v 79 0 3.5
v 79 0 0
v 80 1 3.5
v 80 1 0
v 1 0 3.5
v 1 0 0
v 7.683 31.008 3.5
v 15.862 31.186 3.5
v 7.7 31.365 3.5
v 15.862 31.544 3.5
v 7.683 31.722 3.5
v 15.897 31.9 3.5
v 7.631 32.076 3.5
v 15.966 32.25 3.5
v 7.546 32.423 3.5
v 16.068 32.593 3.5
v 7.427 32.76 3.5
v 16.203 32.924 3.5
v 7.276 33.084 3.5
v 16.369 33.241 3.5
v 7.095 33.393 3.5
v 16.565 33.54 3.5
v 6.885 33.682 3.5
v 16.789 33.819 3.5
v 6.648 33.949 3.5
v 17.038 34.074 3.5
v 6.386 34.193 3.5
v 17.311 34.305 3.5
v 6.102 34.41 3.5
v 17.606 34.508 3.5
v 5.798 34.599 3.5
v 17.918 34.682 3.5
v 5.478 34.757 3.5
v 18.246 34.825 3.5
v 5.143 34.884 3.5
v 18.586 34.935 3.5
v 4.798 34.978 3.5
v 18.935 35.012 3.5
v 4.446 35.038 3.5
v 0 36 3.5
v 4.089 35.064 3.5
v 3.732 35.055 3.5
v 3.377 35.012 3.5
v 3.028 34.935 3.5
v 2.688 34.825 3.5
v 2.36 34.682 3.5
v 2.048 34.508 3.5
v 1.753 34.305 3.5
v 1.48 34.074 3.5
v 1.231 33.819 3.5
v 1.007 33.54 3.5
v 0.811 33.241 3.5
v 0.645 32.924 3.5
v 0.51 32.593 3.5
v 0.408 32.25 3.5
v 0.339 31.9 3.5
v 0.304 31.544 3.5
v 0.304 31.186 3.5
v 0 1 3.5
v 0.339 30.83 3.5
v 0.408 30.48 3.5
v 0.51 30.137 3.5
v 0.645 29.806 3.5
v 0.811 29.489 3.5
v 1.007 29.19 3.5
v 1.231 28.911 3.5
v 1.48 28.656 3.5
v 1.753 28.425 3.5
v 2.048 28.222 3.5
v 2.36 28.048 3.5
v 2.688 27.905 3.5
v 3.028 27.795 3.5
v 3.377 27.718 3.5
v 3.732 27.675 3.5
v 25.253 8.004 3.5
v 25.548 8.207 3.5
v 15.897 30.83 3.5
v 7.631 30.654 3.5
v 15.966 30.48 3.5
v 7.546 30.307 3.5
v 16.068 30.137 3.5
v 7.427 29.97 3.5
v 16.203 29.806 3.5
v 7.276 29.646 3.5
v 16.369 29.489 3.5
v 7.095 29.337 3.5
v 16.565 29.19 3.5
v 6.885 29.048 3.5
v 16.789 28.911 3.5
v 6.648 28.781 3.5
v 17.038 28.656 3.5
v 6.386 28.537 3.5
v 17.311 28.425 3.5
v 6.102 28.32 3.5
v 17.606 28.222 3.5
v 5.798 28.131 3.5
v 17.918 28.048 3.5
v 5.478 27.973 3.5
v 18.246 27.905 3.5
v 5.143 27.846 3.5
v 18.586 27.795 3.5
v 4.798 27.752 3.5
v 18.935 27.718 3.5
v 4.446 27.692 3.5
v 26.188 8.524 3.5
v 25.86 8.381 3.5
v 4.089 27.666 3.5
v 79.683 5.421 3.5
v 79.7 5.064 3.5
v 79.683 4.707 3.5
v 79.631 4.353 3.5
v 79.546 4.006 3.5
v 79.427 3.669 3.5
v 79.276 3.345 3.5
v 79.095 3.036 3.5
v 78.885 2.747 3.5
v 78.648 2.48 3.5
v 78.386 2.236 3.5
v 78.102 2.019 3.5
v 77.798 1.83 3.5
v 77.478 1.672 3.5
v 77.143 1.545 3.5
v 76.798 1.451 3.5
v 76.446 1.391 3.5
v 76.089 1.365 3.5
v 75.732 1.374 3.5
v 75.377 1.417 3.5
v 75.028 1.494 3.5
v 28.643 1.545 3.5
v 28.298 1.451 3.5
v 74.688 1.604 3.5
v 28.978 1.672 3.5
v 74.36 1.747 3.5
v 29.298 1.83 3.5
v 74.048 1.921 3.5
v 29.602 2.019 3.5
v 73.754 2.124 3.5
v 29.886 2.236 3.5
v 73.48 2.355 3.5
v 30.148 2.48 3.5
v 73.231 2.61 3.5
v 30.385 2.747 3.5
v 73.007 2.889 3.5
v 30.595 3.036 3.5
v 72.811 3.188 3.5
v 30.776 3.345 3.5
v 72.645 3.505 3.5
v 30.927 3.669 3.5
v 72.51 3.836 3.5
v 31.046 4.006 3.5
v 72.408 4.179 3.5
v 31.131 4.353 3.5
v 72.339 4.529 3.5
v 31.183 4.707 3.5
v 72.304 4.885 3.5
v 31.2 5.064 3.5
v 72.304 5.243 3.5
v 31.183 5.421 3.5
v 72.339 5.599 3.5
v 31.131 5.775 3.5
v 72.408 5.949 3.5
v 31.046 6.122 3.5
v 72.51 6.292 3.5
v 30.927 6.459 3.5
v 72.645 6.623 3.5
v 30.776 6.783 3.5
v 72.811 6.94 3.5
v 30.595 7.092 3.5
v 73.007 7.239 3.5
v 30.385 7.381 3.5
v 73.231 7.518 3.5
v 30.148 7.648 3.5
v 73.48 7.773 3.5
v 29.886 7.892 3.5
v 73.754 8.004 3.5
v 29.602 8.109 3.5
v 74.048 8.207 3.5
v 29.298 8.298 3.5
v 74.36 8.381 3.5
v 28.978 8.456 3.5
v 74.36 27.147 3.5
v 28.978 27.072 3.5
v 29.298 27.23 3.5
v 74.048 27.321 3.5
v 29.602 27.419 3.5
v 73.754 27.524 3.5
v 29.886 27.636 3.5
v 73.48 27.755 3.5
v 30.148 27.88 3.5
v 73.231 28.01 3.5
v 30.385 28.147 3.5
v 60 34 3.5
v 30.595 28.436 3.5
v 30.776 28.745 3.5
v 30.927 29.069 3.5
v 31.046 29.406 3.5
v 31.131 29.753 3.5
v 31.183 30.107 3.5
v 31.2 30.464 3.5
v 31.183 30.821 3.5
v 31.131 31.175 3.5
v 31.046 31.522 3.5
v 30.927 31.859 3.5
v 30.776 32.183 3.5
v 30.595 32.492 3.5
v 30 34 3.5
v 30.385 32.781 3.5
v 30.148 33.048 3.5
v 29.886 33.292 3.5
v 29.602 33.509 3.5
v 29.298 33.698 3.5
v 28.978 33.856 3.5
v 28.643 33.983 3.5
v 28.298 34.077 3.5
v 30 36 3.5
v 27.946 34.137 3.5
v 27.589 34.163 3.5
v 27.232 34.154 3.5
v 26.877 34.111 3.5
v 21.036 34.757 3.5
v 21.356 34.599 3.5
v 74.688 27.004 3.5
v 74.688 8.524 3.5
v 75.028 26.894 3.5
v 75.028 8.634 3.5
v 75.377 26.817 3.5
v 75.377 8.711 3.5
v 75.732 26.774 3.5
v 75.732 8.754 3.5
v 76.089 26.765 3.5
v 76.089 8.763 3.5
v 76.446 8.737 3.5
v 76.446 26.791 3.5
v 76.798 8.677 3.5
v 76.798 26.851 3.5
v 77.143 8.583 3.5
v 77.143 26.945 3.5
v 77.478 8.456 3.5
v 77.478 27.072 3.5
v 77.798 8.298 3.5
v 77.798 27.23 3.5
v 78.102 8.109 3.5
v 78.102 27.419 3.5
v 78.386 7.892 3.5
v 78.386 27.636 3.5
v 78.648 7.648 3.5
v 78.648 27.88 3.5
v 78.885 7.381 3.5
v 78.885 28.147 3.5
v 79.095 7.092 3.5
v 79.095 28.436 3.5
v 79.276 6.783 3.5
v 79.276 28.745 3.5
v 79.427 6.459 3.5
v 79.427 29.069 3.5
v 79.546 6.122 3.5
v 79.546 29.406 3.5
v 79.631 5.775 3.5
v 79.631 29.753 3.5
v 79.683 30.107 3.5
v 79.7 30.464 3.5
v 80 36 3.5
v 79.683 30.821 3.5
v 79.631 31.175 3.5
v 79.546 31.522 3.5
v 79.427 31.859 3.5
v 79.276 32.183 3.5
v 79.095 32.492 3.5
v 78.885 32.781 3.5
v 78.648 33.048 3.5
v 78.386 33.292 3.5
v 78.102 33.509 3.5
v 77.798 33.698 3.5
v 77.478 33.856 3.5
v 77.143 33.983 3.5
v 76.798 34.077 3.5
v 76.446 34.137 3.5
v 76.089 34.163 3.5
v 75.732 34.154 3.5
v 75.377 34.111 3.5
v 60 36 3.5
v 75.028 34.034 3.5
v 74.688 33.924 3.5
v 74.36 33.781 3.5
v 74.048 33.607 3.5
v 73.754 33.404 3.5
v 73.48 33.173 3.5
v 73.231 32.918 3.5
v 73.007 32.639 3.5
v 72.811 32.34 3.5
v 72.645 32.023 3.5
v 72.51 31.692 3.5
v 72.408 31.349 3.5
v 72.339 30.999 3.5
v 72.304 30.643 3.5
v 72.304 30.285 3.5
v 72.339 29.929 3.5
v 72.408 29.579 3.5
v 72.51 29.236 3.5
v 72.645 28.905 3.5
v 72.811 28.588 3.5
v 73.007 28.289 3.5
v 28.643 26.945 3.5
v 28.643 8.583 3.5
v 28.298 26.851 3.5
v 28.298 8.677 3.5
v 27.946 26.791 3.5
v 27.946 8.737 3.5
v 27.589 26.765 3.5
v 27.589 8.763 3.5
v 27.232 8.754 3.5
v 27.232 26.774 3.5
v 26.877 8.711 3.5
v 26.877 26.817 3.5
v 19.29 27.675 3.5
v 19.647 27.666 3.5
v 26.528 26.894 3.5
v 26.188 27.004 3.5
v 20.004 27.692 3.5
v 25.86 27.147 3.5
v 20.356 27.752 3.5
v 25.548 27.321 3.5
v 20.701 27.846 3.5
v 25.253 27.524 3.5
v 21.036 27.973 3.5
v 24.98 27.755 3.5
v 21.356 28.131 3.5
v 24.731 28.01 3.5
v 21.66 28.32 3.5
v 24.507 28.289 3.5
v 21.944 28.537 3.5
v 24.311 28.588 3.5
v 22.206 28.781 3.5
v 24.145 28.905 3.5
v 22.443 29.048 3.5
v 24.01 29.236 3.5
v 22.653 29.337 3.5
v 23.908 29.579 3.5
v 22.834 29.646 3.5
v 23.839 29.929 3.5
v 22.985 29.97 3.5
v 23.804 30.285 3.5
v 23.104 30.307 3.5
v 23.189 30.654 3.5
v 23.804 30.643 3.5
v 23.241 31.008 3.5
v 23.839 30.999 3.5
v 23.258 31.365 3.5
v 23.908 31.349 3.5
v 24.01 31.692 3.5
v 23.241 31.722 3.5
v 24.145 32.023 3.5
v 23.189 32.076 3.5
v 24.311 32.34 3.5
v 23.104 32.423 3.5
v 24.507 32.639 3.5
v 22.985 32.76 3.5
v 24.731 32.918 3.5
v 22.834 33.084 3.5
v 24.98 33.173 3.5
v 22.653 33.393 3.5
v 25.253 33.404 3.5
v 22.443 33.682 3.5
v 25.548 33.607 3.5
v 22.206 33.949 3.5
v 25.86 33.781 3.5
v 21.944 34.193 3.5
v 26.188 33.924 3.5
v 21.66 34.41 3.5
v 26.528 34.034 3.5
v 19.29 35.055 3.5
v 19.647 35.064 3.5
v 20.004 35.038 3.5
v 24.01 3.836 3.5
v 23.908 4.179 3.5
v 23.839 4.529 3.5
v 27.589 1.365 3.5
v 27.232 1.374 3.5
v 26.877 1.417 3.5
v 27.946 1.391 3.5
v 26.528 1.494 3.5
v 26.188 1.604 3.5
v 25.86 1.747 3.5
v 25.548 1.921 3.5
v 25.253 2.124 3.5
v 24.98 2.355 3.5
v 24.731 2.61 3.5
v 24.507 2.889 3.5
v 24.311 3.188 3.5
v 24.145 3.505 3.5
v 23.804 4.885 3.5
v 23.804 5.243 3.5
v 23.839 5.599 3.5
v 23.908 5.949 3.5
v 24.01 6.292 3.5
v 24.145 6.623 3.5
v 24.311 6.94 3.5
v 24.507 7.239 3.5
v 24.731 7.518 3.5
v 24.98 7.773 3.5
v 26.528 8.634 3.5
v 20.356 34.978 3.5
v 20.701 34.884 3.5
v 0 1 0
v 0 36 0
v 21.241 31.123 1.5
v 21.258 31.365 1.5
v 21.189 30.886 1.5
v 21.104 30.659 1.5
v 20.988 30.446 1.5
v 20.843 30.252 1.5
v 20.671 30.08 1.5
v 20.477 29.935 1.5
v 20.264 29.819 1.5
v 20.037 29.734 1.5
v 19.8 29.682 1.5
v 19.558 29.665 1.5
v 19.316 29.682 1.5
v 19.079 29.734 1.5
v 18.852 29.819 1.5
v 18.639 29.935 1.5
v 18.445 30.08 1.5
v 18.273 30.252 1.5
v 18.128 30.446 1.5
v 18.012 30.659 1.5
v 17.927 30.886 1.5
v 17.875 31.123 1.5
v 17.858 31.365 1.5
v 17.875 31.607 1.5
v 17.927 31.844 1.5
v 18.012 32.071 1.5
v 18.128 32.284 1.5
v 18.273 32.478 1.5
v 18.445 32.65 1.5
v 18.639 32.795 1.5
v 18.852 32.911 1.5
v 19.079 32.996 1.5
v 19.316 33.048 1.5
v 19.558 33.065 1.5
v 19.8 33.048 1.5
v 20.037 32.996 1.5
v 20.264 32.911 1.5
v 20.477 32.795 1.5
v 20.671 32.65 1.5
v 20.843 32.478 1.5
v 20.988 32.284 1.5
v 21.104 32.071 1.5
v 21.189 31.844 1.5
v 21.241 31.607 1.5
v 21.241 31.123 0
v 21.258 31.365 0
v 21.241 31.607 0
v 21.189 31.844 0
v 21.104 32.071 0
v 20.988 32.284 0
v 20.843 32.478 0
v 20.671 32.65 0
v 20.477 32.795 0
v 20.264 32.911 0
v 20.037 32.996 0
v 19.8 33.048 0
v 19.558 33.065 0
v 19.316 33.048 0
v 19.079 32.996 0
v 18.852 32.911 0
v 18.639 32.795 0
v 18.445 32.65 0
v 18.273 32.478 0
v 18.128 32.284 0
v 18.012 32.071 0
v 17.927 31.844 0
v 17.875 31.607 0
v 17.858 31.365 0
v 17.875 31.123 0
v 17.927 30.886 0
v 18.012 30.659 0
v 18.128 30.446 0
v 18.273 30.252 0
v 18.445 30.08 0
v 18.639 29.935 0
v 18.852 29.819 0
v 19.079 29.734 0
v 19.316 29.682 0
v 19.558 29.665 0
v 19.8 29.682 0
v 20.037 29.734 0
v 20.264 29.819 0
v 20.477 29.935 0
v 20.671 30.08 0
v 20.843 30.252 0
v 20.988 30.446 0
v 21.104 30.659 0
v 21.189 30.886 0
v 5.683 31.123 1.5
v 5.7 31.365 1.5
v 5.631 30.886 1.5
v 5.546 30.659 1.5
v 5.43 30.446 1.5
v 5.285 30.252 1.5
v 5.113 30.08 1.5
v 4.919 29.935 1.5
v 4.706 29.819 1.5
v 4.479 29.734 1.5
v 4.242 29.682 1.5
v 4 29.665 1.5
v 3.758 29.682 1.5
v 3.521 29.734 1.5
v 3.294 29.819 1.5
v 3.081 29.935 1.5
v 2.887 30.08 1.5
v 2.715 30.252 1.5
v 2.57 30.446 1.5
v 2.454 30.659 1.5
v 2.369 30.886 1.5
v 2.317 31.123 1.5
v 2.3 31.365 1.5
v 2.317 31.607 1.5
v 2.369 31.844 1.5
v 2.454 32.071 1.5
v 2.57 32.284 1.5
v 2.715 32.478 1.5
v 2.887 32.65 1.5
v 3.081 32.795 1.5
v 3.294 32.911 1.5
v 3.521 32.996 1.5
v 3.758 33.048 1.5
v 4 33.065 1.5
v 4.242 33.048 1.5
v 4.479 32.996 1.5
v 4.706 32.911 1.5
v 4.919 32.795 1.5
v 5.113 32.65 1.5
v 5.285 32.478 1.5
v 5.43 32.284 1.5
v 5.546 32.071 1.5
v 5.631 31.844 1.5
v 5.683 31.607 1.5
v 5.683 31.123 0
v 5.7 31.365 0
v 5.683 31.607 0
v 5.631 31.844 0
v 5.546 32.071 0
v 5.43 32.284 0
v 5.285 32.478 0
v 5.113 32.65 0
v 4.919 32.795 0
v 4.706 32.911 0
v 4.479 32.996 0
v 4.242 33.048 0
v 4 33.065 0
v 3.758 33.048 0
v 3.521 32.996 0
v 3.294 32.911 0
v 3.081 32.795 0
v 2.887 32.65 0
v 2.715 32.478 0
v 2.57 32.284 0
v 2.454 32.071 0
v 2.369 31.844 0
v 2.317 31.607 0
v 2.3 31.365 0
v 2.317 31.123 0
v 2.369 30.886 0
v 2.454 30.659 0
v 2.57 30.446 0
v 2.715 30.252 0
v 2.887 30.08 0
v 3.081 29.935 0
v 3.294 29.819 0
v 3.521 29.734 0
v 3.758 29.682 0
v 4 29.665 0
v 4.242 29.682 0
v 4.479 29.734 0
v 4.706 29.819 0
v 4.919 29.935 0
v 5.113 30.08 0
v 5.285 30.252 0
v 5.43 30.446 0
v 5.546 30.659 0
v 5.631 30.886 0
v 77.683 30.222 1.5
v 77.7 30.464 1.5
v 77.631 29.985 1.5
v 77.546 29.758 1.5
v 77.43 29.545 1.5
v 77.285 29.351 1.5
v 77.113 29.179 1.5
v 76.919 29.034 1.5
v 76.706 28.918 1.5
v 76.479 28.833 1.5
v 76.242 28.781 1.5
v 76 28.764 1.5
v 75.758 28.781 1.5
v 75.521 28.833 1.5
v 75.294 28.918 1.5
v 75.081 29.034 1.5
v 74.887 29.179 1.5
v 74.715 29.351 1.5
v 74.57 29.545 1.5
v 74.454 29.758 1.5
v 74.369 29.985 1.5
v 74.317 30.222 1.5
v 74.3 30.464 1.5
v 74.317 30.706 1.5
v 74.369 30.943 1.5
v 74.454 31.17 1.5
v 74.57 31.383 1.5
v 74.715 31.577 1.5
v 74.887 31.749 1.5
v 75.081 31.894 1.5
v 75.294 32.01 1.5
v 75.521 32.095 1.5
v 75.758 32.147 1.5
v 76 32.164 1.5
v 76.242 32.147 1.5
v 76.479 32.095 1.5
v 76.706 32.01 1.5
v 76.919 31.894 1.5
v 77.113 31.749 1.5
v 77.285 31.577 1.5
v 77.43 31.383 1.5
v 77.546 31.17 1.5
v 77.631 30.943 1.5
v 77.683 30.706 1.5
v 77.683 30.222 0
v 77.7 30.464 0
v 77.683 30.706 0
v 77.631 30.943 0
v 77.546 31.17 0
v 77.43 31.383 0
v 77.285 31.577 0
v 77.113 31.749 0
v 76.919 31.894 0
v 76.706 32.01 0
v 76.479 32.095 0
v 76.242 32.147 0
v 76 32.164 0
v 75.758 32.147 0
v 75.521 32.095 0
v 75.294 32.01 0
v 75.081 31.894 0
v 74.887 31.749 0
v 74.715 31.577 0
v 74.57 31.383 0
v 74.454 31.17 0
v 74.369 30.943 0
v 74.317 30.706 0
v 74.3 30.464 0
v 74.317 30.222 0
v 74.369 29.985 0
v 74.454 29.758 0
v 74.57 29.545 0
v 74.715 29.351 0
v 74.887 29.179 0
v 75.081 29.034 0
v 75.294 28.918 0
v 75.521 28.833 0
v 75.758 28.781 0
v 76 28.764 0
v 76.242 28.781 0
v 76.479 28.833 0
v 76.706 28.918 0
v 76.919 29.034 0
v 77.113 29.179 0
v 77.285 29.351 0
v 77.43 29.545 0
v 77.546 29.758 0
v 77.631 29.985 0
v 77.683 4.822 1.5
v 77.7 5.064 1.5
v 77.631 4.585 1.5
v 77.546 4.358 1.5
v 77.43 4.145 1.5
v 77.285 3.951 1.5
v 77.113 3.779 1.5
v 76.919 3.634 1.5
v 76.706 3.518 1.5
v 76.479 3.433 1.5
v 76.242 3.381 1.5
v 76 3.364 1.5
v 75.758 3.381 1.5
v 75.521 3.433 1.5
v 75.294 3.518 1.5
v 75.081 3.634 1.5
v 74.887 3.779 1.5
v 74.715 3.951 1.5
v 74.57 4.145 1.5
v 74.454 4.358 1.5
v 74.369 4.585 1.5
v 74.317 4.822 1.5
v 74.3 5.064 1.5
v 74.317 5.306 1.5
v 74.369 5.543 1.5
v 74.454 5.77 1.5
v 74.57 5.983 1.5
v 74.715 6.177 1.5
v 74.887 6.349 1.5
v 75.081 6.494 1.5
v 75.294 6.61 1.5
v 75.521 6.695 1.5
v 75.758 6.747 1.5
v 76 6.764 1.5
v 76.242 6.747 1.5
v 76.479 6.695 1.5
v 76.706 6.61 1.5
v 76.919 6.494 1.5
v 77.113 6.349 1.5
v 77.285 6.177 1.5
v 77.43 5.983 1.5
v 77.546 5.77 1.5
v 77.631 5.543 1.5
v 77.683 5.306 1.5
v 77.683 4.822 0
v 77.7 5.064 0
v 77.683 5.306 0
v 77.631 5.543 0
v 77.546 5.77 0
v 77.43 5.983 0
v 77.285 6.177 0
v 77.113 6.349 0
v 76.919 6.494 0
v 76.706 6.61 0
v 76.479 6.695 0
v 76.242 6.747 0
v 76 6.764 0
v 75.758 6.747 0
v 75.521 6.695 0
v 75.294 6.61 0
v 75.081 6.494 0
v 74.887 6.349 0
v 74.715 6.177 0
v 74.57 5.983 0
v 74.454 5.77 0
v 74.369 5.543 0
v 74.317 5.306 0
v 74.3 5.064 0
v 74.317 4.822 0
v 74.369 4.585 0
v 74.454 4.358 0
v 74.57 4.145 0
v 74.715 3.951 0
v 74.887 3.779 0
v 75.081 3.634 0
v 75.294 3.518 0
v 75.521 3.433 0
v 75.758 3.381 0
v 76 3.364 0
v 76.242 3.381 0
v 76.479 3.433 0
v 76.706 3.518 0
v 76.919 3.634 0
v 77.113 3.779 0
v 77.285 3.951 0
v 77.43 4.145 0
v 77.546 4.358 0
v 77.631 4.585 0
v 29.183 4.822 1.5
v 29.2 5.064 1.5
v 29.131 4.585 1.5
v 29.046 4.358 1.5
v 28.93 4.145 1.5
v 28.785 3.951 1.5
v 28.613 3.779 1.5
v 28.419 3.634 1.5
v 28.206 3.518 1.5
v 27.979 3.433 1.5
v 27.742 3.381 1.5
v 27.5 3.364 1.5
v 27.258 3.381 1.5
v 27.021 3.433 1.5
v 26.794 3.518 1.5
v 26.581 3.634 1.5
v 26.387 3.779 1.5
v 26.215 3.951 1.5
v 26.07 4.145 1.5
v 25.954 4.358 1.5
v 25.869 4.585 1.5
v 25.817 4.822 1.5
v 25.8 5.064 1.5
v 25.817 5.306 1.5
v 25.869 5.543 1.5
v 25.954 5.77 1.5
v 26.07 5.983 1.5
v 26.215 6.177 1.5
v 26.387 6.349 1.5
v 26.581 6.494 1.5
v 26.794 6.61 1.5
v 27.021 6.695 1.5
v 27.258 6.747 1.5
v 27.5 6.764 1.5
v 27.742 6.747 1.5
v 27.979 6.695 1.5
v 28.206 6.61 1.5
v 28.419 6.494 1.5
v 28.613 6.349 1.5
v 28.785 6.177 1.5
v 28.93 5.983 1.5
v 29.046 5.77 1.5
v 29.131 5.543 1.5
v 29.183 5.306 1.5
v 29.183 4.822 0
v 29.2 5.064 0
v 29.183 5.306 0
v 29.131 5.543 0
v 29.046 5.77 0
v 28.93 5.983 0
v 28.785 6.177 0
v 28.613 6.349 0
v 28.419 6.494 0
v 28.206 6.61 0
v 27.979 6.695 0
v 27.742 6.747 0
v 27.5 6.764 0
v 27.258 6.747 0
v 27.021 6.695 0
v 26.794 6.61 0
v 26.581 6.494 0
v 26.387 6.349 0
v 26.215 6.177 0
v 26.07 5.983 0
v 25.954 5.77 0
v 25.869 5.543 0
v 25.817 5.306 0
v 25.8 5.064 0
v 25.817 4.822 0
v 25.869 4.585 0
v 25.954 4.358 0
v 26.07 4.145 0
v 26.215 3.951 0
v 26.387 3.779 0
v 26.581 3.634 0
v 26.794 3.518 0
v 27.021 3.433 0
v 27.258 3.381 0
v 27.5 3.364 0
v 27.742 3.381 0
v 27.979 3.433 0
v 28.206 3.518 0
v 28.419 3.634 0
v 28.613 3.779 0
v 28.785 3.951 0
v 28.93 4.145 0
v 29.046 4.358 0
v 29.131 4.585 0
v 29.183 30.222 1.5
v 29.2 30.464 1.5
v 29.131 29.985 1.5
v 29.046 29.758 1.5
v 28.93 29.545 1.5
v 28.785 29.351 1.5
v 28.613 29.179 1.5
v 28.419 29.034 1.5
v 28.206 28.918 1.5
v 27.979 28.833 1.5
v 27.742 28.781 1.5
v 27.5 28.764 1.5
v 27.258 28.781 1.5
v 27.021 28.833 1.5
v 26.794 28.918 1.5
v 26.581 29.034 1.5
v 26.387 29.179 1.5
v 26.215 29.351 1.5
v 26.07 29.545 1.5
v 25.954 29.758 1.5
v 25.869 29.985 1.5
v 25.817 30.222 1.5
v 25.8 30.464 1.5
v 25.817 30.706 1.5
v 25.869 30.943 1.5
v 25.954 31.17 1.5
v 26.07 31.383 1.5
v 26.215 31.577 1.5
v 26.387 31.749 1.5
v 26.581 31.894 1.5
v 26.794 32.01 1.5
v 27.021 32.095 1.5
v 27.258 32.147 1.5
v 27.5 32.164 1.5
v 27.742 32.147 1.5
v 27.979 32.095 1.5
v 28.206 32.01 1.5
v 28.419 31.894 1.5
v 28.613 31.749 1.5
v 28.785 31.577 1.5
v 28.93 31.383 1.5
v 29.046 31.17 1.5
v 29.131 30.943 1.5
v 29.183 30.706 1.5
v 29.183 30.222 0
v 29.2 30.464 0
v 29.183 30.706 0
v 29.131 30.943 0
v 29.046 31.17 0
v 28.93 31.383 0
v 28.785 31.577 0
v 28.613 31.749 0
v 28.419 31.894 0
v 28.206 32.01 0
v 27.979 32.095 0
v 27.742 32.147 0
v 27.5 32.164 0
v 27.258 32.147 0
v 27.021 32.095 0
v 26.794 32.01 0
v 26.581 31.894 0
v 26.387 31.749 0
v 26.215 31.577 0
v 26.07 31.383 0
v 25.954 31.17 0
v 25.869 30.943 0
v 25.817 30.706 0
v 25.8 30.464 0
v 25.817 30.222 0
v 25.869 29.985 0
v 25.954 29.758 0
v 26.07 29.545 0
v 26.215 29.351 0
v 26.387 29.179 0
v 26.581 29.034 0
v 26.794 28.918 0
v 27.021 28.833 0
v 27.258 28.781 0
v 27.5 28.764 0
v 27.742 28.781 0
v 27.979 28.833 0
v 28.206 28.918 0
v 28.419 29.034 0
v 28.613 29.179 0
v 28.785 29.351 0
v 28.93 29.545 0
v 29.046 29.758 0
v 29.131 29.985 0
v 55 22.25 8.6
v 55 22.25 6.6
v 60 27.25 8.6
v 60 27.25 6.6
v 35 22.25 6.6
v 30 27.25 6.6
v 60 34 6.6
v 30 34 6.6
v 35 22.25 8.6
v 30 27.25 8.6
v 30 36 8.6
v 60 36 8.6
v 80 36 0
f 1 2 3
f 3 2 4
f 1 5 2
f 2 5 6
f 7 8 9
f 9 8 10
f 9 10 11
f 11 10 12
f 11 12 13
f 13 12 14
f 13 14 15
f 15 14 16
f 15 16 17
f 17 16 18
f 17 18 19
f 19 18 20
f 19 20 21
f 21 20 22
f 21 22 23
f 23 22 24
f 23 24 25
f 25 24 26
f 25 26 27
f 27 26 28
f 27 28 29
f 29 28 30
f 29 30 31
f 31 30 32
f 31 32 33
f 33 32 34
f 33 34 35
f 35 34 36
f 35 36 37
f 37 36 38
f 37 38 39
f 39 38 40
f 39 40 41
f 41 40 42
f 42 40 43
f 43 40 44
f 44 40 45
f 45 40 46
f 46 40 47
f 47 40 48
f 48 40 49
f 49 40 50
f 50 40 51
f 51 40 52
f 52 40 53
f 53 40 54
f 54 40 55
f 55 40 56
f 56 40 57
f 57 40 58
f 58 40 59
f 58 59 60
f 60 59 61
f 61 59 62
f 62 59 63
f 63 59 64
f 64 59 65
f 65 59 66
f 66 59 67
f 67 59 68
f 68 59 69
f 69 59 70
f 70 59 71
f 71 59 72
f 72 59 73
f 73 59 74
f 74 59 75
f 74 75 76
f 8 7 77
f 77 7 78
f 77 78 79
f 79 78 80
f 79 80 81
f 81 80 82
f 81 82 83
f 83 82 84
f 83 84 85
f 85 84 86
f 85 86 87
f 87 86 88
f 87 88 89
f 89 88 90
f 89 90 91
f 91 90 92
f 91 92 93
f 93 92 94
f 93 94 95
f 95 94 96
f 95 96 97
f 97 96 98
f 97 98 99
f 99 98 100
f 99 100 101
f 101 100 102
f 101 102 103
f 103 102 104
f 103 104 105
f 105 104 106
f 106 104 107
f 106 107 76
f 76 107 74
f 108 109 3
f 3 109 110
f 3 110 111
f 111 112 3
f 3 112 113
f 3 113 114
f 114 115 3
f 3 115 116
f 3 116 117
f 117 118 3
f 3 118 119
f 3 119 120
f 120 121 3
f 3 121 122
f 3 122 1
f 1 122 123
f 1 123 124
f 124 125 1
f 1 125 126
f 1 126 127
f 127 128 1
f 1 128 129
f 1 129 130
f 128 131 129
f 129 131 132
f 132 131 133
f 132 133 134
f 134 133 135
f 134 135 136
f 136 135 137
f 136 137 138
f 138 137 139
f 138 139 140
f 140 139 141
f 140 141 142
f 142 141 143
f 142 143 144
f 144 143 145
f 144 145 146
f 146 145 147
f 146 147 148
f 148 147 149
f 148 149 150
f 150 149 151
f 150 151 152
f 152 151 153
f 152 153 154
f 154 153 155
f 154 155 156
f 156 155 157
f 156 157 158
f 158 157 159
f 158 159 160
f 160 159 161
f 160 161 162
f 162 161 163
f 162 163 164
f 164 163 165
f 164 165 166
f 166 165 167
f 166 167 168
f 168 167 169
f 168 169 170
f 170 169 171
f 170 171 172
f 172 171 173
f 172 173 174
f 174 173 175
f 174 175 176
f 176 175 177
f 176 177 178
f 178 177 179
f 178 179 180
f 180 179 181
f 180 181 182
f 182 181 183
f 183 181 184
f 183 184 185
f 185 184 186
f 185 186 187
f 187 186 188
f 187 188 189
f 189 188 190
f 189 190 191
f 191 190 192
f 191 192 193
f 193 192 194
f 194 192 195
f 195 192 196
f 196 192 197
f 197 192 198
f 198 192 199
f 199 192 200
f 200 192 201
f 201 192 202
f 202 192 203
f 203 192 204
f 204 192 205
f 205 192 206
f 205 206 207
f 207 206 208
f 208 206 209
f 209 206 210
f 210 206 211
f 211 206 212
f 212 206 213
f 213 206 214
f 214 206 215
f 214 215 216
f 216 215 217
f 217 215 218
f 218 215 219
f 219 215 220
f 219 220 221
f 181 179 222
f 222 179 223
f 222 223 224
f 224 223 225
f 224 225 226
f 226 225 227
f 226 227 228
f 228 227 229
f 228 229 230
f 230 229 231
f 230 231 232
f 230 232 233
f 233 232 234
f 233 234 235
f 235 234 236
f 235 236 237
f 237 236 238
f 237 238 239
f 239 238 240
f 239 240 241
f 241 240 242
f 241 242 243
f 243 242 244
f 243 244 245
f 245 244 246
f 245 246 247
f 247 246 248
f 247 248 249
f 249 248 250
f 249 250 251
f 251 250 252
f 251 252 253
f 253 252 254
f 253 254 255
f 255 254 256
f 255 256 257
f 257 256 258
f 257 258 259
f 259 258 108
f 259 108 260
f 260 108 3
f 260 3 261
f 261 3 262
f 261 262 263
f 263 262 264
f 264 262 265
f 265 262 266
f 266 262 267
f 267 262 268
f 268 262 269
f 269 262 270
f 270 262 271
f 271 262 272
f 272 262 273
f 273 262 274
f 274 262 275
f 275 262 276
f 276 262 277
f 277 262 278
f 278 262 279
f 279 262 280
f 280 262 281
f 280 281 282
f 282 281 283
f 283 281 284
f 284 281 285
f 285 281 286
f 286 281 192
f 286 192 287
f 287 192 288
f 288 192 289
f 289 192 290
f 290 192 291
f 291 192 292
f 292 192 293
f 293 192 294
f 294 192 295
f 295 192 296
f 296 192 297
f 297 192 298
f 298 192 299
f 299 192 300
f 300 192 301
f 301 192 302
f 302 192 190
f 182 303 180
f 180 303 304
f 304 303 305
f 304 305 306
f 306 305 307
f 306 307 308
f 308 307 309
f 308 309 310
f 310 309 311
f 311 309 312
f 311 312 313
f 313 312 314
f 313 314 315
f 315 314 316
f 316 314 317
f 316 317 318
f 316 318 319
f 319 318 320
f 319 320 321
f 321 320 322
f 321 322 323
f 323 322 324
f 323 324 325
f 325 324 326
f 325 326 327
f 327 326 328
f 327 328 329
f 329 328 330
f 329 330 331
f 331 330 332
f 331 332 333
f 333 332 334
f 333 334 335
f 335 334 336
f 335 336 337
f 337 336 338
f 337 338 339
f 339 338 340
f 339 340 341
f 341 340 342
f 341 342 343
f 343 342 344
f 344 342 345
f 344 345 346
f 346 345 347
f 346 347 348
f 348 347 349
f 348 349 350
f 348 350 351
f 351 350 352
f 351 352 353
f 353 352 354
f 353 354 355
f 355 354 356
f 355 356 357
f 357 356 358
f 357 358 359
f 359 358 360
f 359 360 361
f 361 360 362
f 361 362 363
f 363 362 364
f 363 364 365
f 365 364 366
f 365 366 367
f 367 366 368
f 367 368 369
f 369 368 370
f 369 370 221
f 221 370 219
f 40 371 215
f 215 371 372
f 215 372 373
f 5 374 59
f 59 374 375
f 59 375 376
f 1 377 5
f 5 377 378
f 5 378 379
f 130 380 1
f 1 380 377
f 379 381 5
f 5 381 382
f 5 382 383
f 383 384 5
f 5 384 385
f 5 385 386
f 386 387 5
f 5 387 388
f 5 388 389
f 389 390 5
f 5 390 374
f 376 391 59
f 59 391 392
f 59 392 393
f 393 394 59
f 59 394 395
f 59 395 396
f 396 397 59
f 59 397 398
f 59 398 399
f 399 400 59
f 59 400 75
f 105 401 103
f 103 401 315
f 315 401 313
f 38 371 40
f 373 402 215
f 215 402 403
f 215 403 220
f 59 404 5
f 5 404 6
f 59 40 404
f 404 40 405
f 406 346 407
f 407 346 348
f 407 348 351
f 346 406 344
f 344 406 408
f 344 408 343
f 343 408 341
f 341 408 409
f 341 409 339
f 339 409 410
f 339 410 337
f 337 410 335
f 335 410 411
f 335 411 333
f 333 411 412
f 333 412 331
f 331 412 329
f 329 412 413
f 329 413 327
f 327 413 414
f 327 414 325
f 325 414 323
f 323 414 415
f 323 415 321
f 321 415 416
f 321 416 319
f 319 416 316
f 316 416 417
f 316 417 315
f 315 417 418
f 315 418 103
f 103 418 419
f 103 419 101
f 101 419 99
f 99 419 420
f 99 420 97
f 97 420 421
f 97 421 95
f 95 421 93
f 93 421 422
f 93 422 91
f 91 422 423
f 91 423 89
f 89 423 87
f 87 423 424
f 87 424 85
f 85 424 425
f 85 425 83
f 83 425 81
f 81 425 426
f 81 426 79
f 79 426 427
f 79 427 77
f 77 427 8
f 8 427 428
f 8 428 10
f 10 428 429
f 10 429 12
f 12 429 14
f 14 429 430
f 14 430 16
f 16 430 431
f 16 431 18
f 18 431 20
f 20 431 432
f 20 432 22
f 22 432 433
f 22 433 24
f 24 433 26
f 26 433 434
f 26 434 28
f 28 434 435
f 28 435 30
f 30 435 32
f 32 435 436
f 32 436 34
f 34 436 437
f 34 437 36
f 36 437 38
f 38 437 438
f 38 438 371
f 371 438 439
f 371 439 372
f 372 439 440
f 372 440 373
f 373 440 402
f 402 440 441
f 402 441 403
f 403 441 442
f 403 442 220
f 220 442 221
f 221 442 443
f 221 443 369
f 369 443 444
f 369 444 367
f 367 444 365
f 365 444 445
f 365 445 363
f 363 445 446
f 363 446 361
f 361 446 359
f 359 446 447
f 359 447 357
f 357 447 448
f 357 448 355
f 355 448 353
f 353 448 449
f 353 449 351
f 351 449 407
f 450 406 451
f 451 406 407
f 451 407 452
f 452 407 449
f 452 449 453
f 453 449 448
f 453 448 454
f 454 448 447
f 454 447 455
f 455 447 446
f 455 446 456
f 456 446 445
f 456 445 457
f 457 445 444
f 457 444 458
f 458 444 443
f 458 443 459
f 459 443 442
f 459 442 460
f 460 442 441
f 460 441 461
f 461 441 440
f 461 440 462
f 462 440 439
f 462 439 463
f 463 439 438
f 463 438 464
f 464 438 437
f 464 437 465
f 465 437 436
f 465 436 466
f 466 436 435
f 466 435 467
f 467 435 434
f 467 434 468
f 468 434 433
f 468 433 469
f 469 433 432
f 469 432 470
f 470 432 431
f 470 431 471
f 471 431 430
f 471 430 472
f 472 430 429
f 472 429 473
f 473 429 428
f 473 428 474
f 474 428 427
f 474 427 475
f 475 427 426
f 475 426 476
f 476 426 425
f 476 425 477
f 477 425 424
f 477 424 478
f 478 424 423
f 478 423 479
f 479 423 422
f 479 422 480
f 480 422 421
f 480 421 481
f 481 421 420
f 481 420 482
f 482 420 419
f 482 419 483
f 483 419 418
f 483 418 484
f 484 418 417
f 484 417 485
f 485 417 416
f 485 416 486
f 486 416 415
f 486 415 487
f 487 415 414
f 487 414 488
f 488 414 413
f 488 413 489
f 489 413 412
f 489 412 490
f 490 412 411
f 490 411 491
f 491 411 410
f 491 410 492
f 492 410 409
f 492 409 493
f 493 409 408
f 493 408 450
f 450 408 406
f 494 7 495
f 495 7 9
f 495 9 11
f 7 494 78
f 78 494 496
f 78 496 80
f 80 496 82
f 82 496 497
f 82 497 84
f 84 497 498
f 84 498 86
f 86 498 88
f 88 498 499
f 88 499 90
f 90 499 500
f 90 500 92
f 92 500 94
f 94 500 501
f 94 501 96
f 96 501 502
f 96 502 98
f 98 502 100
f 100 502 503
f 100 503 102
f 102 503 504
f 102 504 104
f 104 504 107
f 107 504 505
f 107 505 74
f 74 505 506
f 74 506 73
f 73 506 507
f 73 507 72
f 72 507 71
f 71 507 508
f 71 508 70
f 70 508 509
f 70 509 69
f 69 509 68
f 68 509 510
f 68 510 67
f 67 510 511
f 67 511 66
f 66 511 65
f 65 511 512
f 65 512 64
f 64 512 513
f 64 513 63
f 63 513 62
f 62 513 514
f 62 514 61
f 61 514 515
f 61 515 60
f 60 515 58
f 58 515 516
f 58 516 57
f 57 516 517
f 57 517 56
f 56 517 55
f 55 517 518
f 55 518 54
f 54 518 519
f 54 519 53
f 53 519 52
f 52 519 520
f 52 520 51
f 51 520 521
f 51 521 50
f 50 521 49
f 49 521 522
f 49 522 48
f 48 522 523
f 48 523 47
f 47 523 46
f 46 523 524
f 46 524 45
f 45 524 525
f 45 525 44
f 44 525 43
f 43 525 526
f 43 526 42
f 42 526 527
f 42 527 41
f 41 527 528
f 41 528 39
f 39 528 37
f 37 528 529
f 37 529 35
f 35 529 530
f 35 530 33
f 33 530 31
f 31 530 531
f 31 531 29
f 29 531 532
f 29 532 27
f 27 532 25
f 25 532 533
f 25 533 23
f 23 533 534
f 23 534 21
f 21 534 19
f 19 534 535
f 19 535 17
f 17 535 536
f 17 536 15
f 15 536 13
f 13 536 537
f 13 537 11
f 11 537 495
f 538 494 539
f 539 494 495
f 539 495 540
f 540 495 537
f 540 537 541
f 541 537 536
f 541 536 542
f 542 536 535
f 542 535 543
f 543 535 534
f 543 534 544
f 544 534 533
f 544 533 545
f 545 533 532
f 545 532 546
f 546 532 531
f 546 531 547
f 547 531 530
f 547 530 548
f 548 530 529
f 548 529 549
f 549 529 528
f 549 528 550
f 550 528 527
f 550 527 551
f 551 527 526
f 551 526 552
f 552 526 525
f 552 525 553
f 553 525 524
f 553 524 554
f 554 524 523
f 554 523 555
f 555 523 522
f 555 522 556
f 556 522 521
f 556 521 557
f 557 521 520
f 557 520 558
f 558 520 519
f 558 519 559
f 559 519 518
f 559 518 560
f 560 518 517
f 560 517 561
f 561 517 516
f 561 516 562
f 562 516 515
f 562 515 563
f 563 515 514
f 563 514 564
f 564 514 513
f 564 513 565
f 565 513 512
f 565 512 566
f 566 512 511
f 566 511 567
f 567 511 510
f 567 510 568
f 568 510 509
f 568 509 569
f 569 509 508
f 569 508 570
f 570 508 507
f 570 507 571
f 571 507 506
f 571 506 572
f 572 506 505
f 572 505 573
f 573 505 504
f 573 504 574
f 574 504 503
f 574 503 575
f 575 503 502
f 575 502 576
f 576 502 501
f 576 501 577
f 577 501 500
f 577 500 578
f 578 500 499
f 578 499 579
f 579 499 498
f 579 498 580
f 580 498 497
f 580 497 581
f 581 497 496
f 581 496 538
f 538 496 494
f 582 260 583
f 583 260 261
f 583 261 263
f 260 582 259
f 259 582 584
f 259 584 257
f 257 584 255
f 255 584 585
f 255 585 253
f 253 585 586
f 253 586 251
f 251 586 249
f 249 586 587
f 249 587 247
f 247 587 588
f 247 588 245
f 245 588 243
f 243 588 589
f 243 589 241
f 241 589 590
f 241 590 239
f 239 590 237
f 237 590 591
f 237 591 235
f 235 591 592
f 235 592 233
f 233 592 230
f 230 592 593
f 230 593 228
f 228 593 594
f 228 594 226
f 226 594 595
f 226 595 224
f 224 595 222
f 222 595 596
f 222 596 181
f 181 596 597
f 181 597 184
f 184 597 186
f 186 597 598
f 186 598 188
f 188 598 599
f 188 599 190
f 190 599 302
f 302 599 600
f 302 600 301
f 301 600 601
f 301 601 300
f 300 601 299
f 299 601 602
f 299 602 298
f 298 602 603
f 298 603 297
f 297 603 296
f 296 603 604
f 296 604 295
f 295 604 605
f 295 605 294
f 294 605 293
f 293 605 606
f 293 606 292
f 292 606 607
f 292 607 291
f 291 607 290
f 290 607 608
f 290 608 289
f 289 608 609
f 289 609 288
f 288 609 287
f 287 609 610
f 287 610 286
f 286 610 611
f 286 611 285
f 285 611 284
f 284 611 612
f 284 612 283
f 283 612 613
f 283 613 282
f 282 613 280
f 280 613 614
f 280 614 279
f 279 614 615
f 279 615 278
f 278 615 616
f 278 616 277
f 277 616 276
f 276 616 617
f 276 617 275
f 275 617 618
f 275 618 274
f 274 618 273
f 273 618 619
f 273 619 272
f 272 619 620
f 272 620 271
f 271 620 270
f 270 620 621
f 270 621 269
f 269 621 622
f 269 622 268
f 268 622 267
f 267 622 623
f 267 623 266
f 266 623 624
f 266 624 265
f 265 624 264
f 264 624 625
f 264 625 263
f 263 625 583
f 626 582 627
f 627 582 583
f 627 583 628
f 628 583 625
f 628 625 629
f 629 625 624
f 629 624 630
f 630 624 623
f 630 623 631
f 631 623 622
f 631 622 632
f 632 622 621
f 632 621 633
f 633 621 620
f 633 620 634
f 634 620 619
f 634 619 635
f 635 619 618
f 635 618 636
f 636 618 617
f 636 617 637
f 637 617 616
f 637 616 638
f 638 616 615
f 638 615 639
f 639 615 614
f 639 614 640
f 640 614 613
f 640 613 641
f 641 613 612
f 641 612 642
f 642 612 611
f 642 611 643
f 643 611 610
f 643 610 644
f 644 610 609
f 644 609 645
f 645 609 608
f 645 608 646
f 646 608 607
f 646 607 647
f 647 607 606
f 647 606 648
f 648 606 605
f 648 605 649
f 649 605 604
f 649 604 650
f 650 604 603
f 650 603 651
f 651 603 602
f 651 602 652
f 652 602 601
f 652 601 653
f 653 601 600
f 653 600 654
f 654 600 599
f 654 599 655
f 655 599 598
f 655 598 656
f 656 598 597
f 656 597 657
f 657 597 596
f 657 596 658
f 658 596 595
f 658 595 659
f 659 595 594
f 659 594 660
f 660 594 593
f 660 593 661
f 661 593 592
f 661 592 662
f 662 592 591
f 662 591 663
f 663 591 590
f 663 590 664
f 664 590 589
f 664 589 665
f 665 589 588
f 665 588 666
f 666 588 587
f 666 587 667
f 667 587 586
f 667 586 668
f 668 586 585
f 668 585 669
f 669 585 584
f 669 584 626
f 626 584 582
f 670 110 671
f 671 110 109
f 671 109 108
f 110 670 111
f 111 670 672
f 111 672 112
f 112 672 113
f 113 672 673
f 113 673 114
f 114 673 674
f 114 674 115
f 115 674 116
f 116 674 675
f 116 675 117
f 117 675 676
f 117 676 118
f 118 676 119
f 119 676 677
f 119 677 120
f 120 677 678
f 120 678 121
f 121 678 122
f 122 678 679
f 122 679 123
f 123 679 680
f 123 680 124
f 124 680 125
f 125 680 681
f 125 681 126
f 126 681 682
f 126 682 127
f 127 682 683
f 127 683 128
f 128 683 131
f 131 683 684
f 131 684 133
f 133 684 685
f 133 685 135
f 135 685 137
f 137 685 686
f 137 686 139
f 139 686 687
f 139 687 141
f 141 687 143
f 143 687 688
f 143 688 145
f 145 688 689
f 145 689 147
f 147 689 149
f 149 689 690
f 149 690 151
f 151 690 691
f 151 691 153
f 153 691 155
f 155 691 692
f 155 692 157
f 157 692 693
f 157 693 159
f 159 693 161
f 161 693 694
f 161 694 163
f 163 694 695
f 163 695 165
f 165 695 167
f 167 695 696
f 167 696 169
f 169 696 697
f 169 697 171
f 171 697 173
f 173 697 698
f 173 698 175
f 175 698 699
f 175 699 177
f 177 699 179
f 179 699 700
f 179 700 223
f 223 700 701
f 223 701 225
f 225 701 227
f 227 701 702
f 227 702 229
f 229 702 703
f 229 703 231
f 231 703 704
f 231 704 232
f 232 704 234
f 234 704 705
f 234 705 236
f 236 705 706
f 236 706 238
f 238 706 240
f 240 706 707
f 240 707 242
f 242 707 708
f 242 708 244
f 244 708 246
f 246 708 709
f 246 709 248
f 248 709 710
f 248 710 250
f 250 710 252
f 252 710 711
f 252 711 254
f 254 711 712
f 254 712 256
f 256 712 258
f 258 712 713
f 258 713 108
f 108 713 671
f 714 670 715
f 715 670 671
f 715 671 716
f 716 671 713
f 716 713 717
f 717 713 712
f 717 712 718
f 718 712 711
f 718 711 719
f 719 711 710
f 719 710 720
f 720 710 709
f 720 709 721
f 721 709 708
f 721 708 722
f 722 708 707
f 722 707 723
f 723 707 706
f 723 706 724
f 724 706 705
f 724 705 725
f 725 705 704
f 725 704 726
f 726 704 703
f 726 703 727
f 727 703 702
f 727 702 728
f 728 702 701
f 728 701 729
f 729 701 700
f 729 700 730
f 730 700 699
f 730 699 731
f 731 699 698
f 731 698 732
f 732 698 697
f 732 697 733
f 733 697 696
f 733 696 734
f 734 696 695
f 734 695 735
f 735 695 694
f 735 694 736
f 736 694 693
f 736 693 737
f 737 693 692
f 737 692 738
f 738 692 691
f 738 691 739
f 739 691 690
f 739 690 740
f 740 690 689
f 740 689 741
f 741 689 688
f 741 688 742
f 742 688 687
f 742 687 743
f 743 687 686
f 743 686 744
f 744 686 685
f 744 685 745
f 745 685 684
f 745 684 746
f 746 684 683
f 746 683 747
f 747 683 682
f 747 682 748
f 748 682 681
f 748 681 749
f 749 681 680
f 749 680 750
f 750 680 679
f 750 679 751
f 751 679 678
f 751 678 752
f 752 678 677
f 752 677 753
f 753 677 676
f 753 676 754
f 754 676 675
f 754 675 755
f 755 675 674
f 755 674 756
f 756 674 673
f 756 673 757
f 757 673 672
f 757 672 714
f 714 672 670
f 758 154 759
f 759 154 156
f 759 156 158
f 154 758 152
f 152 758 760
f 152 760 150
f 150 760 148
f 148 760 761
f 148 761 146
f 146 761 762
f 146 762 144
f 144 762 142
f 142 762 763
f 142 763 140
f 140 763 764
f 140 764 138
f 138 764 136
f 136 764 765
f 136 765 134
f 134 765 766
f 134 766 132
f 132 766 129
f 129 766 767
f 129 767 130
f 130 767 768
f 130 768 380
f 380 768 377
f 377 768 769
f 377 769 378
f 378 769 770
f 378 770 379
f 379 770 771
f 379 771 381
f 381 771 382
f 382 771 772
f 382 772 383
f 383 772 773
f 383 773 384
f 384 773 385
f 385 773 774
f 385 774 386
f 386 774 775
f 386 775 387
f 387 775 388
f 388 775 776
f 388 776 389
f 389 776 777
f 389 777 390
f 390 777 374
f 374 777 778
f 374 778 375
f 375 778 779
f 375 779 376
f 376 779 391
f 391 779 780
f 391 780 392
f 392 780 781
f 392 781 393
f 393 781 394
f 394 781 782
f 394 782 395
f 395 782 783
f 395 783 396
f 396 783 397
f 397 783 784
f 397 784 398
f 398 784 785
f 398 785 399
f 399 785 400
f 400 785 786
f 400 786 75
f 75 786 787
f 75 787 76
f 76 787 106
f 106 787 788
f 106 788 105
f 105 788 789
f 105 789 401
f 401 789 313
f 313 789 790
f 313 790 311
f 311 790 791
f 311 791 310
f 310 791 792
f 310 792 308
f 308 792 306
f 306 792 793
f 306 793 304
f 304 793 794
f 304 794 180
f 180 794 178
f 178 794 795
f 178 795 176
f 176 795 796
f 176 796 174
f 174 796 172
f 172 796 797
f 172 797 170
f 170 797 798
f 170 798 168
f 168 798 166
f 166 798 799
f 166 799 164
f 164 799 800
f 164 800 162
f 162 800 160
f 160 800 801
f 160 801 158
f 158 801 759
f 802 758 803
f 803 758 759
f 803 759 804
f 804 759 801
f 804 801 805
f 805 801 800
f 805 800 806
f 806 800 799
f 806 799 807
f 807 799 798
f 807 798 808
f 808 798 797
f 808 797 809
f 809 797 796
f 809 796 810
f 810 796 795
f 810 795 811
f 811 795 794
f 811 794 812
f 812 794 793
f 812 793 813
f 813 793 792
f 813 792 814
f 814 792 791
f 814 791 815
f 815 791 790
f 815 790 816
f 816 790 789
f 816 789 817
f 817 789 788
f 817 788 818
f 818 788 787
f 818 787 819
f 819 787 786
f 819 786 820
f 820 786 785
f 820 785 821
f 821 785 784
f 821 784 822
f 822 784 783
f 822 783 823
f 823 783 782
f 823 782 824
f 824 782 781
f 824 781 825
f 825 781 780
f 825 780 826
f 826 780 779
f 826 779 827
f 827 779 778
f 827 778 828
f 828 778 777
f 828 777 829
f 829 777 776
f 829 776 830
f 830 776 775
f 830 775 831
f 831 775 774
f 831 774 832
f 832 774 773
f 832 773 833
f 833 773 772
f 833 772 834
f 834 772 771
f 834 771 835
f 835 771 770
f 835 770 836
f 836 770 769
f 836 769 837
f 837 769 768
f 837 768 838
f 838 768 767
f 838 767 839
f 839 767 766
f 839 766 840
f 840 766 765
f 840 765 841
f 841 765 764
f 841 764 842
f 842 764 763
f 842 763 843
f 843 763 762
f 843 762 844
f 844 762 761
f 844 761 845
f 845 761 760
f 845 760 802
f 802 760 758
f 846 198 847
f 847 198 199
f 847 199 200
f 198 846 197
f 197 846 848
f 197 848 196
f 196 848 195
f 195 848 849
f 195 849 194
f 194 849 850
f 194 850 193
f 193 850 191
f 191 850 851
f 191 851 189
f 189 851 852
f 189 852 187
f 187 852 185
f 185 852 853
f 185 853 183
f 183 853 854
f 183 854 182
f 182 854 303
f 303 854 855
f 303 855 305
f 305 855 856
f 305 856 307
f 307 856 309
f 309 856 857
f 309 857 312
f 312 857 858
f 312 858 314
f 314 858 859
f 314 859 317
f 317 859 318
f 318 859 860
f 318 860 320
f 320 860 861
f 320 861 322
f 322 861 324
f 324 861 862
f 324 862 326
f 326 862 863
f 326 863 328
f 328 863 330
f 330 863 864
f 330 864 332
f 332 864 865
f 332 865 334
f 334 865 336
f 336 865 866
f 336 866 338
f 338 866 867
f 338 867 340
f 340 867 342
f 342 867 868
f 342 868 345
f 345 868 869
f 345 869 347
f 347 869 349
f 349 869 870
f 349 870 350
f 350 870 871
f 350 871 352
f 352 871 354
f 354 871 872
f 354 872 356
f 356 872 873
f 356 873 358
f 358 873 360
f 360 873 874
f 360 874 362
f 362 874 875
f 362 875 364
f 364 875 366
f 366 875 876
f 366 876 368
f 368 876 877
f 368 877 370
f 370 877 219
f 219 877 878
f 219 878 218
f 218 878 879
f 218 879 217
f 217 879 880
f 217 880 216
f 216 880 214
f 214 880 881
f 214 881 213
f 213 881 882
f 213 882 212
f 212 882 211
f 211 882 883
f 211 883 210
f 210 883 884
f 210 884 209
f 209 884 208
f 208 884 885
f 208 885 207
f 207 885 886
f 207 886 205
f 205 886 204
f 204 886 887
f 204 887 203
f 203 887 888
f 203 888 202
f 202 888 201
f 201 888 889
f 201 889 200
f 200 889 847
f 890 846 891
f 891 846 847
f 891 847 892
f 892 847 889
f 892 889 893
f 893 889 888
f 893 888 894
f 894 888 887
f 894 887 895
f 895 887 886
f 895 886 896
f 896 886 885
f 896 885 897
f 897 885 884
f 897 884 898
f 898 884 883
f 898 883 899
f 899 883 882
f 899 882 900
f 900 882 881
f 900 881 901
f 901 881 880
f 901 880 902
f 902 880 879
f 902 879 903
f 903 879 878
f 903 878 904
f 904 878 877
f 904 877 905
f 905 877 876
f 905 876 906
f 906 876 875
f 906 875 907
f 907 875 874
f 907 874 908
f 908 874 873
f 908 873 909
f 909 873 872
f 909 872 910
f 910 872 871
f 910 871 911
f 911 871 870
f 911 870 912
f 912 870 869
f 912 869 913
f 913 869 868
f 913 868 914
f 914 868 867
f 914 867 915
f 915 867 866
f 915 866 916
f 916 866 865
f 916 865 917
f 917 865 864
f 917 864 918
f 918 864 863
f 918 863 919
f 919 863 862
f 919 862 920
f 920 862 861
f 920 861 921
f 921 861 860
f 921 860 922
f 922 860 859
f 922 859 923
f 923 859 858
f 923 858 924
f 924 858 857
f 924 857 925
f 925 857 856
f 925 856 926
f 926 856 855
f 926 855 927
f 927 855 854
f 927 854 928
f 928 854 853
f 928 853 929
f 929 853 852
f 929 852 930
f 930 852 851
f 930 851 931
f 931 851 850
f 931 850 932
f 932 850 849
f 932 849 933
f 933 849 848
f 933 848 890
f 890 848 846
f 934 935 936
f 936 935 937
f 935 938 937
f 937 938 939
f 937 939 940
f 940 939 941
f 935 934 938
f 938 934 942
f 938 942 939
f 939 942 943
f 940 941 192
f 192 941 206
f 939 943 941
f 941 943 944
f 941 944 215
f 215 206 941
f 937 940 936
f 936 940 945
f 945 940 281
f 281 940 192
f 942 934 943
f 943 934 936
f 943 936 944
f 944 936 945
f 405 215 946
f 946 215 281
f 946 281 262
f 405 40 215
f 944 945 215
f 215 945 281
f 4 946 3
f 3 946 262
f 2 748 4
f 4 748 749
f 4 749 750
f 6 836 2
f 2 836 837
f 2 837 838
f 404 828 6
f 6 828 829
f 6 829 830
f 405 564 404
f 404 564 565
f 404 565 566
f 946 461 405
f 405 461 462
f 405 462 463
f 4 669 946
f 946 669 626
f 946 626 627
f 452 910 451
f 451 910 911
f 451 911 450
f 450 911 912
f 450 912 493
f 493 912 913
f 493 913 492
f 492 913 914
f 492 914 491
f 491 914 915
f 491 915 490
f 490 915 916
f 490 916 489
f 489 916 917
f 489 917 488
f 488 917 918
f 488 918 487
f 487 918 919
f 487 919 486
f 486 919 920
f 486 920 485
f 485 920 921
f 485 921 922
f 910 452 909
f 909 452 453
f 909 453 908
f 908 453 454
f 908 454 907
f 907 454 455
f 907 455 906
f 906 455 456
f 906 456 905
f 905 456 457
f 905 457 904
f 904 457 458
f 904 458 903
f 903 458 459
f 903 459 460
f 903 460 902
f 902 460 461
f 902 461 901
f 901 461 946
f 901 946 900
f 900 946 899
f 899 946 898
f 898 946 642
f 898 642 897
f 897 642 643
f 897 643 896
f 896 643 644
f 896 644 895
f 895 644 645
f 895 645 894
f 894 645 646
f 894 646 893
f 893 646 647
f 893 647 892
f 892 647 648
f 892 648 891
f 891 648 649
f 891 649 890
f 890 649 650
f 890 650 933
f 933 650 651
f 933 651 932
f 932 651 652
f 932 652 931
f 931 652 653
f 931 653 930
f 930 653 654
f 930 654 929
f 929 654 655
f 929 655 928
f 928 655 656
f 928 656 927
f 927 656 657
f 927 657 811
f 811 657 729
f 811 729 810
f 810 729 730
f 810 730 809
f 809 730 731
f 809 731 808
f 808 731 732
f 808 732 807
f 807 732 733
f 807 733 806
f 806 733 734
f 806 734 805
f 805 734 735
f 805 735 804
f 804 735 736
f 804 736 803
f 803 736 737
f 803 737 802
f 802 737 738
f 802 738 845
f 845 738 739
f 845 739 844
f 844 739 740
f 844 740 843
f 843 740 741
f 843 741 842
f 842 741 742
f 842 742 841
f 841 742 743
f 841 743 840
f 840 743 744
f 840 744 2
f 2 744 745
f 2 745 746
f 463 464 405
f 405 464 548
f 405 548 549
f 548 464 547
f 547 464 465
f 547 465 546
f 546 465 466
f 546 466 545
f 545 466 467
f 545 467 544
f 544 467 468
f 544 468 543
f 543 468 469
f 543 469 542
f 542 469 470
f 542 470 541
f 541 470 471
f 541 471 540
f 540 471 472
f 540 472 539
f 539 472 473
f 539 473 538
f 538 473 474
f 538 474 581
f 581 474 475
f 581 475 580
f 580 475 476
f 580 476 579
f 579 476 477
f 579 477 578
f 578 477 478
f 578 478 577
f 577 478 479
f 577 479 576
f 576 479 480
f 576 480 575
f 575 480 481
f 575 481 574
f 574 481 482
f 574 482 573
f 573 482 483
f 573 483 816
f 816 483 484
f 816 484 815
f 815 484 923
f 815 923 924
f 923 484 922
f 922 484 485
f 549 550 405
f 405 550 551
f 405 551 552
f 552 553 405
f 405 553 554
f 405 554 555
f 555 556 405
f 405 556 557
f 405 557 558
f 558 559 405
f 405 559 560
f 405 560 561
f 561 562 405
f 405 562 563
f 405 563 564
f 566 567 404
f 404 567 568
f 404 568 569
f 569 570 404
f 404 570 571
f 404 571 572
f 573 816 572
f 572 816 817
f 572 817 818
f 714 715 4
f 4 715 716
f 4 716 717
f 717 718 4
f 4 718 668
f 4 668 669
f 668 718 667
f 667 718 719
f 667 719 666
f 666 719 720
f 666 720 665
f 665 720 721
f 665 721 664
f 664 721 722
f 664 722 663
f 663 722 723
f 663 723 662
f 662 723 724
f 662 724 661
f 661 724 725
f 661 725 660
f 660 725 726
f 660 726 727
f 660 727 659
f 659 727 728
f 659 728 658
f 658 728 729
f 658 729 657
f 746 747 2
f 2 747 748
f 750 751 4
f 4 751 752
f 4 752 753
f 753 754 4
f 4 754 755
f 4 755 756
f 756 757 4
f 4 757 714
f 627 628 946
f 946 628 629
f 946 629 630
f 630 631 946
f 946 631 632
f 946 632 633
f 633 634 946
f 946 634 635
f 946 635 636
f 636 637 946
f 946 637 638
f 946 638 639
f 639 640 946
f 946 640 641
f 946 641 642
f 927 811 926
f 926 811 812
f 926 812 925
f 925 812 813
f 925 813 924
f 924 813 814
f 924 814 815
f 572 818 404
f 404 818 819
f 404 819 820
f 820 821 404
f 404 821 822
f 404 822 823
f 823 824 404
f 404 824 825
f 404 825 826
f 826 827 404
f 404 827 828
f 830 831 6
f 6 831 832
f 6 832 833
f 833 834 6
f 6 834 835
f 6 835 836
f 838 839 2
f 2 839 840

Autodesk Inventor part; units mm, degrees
ref_plane "YZ Plane" through (0, 0, 0) normal (1, 0, 0) x (0, 1, 0)
ref_plane "XZ Plane" through (0, 0, 0) normal (0, 1, 0) x (-1, 0, 0)
ref_plane "XY Plane" through (0, 0, 0) normal (0, 0, 1) x (1, 0, 0)
sketch "Sketch1" plane through (0, 0, 0) normal (0, 0, 1) x (1, 0, 0)
  line L0 (0, 0) -> (80, 0)
  line L1 (80, 0) -> (80, 36)
  line L2 (80, 36) -> (0, 36)
  line L3 (0, 36) -> (0, 0)
  circle A0 centre (27.5, 30.464) radius 1.7
  circle A1 centre (27.5, 5.064) radius 1.7
  circle A2 centre (76, 30.464) radius 1.7
  circle A3 centre (76, 5.064) radius 1.7
  circle A4 centre (4, 31.365) radius 1.7
  circle A5 centre (19.558, 31.365) radius 1.7
  dimension "d0" = 36
  dimension "d1" = 80
  dimension "d2" = 3.4
  dimension "d3" = 3.4
  dimension "d4" = 3.4
  dimension "d5" = 3.4
  dimension "d6" = 3.4
  dimension "d7" = 3.4
  dimension "d8" = 5.536
  dimension "d10" = 5.536
  dimension "d11" = 48.5
  dimension "d12" = 25.4
  dimension "d13" = 48.5
  dimension "d14" = 25.4
  dimension "d16" = 15.558
  dimension "d17" = 4.635
  dimension "d18" = 4.635
  dimension "d39" = 4
  dimension "d40" = 4
  dimension "d41" = 4
extrude "Extrusion1" add sketch "Sketch1" along normal blind 3.5
sketch "Sketch2" plane through (0, 0, 3.5) normal (0, 0, 1) x (1, 0, 0)
  line L0 (30, 34) -> (60, 34)
  line L1 (60, 34) -> (60, 36)
  line L2 (60, 36) -> (30, 36)
  line L3 (30, 36) -> (30, 34)
  line L4 (80, 36) -> (0, 36) projected
  line L5 (0, 36) -> (0, 0) projected
  line L6 (80, 0) -> (80, 36) projected
  dimension "d22" = 2
  dimension "d24" = 30
  dimension "d42" = 20
extrude "Extrusion2" add sketch "Sketch2" along normal blind 5.1
sketch "Sketch3" plane through (30, 34, 3.5) normal (0, -1, 0) x (1, 0, 0)
  line L0 (0, 3.1) -> (30, 3.1)
  line L1 (30, 3.1) -> (30, 5.1)
  line L2 (30, 5.1) -> (0, 5.1)
  line L3 (0, 5.1) -> (0, 3.1)
  line L4 (0, 5.1) -> (30, 5.1) projected
  line L5 (0, 0) -> (0, 5.1) projected
  line L6 (30, 0) -> (30, 5.1) projected
  line L7 (-30, 0) -> (50, 0) projected
  point P0 (-30, -3.5)
  dimension "d27" = 3.1
extrude "Extrusion3" add sketch "Sketch3" along normal blind 11.75 contours L3 L2 L1 L0
chamfer "Chamfer1" distance 5 angle 45 2 edges at (30, 22.25, 7.6) (60, 22.25, 7.6)
chamfer "Chamfer2" distance 2 angle 45 6 edges at (25.8, 30.464, 3.5) (25.8, 5.064, 3.5) (74.3, 5.064, 3.5) (74.3, 30.464, 3.5) (2.3, 31.365, 3.5) (17.858, 31.365, 3.5)
chamfer "Chamfer3" distance 1 angle 45 2 edges at (0, 0, 1.75) (80, 0, 1.75)
properties part number "PowerMountingBracket"
